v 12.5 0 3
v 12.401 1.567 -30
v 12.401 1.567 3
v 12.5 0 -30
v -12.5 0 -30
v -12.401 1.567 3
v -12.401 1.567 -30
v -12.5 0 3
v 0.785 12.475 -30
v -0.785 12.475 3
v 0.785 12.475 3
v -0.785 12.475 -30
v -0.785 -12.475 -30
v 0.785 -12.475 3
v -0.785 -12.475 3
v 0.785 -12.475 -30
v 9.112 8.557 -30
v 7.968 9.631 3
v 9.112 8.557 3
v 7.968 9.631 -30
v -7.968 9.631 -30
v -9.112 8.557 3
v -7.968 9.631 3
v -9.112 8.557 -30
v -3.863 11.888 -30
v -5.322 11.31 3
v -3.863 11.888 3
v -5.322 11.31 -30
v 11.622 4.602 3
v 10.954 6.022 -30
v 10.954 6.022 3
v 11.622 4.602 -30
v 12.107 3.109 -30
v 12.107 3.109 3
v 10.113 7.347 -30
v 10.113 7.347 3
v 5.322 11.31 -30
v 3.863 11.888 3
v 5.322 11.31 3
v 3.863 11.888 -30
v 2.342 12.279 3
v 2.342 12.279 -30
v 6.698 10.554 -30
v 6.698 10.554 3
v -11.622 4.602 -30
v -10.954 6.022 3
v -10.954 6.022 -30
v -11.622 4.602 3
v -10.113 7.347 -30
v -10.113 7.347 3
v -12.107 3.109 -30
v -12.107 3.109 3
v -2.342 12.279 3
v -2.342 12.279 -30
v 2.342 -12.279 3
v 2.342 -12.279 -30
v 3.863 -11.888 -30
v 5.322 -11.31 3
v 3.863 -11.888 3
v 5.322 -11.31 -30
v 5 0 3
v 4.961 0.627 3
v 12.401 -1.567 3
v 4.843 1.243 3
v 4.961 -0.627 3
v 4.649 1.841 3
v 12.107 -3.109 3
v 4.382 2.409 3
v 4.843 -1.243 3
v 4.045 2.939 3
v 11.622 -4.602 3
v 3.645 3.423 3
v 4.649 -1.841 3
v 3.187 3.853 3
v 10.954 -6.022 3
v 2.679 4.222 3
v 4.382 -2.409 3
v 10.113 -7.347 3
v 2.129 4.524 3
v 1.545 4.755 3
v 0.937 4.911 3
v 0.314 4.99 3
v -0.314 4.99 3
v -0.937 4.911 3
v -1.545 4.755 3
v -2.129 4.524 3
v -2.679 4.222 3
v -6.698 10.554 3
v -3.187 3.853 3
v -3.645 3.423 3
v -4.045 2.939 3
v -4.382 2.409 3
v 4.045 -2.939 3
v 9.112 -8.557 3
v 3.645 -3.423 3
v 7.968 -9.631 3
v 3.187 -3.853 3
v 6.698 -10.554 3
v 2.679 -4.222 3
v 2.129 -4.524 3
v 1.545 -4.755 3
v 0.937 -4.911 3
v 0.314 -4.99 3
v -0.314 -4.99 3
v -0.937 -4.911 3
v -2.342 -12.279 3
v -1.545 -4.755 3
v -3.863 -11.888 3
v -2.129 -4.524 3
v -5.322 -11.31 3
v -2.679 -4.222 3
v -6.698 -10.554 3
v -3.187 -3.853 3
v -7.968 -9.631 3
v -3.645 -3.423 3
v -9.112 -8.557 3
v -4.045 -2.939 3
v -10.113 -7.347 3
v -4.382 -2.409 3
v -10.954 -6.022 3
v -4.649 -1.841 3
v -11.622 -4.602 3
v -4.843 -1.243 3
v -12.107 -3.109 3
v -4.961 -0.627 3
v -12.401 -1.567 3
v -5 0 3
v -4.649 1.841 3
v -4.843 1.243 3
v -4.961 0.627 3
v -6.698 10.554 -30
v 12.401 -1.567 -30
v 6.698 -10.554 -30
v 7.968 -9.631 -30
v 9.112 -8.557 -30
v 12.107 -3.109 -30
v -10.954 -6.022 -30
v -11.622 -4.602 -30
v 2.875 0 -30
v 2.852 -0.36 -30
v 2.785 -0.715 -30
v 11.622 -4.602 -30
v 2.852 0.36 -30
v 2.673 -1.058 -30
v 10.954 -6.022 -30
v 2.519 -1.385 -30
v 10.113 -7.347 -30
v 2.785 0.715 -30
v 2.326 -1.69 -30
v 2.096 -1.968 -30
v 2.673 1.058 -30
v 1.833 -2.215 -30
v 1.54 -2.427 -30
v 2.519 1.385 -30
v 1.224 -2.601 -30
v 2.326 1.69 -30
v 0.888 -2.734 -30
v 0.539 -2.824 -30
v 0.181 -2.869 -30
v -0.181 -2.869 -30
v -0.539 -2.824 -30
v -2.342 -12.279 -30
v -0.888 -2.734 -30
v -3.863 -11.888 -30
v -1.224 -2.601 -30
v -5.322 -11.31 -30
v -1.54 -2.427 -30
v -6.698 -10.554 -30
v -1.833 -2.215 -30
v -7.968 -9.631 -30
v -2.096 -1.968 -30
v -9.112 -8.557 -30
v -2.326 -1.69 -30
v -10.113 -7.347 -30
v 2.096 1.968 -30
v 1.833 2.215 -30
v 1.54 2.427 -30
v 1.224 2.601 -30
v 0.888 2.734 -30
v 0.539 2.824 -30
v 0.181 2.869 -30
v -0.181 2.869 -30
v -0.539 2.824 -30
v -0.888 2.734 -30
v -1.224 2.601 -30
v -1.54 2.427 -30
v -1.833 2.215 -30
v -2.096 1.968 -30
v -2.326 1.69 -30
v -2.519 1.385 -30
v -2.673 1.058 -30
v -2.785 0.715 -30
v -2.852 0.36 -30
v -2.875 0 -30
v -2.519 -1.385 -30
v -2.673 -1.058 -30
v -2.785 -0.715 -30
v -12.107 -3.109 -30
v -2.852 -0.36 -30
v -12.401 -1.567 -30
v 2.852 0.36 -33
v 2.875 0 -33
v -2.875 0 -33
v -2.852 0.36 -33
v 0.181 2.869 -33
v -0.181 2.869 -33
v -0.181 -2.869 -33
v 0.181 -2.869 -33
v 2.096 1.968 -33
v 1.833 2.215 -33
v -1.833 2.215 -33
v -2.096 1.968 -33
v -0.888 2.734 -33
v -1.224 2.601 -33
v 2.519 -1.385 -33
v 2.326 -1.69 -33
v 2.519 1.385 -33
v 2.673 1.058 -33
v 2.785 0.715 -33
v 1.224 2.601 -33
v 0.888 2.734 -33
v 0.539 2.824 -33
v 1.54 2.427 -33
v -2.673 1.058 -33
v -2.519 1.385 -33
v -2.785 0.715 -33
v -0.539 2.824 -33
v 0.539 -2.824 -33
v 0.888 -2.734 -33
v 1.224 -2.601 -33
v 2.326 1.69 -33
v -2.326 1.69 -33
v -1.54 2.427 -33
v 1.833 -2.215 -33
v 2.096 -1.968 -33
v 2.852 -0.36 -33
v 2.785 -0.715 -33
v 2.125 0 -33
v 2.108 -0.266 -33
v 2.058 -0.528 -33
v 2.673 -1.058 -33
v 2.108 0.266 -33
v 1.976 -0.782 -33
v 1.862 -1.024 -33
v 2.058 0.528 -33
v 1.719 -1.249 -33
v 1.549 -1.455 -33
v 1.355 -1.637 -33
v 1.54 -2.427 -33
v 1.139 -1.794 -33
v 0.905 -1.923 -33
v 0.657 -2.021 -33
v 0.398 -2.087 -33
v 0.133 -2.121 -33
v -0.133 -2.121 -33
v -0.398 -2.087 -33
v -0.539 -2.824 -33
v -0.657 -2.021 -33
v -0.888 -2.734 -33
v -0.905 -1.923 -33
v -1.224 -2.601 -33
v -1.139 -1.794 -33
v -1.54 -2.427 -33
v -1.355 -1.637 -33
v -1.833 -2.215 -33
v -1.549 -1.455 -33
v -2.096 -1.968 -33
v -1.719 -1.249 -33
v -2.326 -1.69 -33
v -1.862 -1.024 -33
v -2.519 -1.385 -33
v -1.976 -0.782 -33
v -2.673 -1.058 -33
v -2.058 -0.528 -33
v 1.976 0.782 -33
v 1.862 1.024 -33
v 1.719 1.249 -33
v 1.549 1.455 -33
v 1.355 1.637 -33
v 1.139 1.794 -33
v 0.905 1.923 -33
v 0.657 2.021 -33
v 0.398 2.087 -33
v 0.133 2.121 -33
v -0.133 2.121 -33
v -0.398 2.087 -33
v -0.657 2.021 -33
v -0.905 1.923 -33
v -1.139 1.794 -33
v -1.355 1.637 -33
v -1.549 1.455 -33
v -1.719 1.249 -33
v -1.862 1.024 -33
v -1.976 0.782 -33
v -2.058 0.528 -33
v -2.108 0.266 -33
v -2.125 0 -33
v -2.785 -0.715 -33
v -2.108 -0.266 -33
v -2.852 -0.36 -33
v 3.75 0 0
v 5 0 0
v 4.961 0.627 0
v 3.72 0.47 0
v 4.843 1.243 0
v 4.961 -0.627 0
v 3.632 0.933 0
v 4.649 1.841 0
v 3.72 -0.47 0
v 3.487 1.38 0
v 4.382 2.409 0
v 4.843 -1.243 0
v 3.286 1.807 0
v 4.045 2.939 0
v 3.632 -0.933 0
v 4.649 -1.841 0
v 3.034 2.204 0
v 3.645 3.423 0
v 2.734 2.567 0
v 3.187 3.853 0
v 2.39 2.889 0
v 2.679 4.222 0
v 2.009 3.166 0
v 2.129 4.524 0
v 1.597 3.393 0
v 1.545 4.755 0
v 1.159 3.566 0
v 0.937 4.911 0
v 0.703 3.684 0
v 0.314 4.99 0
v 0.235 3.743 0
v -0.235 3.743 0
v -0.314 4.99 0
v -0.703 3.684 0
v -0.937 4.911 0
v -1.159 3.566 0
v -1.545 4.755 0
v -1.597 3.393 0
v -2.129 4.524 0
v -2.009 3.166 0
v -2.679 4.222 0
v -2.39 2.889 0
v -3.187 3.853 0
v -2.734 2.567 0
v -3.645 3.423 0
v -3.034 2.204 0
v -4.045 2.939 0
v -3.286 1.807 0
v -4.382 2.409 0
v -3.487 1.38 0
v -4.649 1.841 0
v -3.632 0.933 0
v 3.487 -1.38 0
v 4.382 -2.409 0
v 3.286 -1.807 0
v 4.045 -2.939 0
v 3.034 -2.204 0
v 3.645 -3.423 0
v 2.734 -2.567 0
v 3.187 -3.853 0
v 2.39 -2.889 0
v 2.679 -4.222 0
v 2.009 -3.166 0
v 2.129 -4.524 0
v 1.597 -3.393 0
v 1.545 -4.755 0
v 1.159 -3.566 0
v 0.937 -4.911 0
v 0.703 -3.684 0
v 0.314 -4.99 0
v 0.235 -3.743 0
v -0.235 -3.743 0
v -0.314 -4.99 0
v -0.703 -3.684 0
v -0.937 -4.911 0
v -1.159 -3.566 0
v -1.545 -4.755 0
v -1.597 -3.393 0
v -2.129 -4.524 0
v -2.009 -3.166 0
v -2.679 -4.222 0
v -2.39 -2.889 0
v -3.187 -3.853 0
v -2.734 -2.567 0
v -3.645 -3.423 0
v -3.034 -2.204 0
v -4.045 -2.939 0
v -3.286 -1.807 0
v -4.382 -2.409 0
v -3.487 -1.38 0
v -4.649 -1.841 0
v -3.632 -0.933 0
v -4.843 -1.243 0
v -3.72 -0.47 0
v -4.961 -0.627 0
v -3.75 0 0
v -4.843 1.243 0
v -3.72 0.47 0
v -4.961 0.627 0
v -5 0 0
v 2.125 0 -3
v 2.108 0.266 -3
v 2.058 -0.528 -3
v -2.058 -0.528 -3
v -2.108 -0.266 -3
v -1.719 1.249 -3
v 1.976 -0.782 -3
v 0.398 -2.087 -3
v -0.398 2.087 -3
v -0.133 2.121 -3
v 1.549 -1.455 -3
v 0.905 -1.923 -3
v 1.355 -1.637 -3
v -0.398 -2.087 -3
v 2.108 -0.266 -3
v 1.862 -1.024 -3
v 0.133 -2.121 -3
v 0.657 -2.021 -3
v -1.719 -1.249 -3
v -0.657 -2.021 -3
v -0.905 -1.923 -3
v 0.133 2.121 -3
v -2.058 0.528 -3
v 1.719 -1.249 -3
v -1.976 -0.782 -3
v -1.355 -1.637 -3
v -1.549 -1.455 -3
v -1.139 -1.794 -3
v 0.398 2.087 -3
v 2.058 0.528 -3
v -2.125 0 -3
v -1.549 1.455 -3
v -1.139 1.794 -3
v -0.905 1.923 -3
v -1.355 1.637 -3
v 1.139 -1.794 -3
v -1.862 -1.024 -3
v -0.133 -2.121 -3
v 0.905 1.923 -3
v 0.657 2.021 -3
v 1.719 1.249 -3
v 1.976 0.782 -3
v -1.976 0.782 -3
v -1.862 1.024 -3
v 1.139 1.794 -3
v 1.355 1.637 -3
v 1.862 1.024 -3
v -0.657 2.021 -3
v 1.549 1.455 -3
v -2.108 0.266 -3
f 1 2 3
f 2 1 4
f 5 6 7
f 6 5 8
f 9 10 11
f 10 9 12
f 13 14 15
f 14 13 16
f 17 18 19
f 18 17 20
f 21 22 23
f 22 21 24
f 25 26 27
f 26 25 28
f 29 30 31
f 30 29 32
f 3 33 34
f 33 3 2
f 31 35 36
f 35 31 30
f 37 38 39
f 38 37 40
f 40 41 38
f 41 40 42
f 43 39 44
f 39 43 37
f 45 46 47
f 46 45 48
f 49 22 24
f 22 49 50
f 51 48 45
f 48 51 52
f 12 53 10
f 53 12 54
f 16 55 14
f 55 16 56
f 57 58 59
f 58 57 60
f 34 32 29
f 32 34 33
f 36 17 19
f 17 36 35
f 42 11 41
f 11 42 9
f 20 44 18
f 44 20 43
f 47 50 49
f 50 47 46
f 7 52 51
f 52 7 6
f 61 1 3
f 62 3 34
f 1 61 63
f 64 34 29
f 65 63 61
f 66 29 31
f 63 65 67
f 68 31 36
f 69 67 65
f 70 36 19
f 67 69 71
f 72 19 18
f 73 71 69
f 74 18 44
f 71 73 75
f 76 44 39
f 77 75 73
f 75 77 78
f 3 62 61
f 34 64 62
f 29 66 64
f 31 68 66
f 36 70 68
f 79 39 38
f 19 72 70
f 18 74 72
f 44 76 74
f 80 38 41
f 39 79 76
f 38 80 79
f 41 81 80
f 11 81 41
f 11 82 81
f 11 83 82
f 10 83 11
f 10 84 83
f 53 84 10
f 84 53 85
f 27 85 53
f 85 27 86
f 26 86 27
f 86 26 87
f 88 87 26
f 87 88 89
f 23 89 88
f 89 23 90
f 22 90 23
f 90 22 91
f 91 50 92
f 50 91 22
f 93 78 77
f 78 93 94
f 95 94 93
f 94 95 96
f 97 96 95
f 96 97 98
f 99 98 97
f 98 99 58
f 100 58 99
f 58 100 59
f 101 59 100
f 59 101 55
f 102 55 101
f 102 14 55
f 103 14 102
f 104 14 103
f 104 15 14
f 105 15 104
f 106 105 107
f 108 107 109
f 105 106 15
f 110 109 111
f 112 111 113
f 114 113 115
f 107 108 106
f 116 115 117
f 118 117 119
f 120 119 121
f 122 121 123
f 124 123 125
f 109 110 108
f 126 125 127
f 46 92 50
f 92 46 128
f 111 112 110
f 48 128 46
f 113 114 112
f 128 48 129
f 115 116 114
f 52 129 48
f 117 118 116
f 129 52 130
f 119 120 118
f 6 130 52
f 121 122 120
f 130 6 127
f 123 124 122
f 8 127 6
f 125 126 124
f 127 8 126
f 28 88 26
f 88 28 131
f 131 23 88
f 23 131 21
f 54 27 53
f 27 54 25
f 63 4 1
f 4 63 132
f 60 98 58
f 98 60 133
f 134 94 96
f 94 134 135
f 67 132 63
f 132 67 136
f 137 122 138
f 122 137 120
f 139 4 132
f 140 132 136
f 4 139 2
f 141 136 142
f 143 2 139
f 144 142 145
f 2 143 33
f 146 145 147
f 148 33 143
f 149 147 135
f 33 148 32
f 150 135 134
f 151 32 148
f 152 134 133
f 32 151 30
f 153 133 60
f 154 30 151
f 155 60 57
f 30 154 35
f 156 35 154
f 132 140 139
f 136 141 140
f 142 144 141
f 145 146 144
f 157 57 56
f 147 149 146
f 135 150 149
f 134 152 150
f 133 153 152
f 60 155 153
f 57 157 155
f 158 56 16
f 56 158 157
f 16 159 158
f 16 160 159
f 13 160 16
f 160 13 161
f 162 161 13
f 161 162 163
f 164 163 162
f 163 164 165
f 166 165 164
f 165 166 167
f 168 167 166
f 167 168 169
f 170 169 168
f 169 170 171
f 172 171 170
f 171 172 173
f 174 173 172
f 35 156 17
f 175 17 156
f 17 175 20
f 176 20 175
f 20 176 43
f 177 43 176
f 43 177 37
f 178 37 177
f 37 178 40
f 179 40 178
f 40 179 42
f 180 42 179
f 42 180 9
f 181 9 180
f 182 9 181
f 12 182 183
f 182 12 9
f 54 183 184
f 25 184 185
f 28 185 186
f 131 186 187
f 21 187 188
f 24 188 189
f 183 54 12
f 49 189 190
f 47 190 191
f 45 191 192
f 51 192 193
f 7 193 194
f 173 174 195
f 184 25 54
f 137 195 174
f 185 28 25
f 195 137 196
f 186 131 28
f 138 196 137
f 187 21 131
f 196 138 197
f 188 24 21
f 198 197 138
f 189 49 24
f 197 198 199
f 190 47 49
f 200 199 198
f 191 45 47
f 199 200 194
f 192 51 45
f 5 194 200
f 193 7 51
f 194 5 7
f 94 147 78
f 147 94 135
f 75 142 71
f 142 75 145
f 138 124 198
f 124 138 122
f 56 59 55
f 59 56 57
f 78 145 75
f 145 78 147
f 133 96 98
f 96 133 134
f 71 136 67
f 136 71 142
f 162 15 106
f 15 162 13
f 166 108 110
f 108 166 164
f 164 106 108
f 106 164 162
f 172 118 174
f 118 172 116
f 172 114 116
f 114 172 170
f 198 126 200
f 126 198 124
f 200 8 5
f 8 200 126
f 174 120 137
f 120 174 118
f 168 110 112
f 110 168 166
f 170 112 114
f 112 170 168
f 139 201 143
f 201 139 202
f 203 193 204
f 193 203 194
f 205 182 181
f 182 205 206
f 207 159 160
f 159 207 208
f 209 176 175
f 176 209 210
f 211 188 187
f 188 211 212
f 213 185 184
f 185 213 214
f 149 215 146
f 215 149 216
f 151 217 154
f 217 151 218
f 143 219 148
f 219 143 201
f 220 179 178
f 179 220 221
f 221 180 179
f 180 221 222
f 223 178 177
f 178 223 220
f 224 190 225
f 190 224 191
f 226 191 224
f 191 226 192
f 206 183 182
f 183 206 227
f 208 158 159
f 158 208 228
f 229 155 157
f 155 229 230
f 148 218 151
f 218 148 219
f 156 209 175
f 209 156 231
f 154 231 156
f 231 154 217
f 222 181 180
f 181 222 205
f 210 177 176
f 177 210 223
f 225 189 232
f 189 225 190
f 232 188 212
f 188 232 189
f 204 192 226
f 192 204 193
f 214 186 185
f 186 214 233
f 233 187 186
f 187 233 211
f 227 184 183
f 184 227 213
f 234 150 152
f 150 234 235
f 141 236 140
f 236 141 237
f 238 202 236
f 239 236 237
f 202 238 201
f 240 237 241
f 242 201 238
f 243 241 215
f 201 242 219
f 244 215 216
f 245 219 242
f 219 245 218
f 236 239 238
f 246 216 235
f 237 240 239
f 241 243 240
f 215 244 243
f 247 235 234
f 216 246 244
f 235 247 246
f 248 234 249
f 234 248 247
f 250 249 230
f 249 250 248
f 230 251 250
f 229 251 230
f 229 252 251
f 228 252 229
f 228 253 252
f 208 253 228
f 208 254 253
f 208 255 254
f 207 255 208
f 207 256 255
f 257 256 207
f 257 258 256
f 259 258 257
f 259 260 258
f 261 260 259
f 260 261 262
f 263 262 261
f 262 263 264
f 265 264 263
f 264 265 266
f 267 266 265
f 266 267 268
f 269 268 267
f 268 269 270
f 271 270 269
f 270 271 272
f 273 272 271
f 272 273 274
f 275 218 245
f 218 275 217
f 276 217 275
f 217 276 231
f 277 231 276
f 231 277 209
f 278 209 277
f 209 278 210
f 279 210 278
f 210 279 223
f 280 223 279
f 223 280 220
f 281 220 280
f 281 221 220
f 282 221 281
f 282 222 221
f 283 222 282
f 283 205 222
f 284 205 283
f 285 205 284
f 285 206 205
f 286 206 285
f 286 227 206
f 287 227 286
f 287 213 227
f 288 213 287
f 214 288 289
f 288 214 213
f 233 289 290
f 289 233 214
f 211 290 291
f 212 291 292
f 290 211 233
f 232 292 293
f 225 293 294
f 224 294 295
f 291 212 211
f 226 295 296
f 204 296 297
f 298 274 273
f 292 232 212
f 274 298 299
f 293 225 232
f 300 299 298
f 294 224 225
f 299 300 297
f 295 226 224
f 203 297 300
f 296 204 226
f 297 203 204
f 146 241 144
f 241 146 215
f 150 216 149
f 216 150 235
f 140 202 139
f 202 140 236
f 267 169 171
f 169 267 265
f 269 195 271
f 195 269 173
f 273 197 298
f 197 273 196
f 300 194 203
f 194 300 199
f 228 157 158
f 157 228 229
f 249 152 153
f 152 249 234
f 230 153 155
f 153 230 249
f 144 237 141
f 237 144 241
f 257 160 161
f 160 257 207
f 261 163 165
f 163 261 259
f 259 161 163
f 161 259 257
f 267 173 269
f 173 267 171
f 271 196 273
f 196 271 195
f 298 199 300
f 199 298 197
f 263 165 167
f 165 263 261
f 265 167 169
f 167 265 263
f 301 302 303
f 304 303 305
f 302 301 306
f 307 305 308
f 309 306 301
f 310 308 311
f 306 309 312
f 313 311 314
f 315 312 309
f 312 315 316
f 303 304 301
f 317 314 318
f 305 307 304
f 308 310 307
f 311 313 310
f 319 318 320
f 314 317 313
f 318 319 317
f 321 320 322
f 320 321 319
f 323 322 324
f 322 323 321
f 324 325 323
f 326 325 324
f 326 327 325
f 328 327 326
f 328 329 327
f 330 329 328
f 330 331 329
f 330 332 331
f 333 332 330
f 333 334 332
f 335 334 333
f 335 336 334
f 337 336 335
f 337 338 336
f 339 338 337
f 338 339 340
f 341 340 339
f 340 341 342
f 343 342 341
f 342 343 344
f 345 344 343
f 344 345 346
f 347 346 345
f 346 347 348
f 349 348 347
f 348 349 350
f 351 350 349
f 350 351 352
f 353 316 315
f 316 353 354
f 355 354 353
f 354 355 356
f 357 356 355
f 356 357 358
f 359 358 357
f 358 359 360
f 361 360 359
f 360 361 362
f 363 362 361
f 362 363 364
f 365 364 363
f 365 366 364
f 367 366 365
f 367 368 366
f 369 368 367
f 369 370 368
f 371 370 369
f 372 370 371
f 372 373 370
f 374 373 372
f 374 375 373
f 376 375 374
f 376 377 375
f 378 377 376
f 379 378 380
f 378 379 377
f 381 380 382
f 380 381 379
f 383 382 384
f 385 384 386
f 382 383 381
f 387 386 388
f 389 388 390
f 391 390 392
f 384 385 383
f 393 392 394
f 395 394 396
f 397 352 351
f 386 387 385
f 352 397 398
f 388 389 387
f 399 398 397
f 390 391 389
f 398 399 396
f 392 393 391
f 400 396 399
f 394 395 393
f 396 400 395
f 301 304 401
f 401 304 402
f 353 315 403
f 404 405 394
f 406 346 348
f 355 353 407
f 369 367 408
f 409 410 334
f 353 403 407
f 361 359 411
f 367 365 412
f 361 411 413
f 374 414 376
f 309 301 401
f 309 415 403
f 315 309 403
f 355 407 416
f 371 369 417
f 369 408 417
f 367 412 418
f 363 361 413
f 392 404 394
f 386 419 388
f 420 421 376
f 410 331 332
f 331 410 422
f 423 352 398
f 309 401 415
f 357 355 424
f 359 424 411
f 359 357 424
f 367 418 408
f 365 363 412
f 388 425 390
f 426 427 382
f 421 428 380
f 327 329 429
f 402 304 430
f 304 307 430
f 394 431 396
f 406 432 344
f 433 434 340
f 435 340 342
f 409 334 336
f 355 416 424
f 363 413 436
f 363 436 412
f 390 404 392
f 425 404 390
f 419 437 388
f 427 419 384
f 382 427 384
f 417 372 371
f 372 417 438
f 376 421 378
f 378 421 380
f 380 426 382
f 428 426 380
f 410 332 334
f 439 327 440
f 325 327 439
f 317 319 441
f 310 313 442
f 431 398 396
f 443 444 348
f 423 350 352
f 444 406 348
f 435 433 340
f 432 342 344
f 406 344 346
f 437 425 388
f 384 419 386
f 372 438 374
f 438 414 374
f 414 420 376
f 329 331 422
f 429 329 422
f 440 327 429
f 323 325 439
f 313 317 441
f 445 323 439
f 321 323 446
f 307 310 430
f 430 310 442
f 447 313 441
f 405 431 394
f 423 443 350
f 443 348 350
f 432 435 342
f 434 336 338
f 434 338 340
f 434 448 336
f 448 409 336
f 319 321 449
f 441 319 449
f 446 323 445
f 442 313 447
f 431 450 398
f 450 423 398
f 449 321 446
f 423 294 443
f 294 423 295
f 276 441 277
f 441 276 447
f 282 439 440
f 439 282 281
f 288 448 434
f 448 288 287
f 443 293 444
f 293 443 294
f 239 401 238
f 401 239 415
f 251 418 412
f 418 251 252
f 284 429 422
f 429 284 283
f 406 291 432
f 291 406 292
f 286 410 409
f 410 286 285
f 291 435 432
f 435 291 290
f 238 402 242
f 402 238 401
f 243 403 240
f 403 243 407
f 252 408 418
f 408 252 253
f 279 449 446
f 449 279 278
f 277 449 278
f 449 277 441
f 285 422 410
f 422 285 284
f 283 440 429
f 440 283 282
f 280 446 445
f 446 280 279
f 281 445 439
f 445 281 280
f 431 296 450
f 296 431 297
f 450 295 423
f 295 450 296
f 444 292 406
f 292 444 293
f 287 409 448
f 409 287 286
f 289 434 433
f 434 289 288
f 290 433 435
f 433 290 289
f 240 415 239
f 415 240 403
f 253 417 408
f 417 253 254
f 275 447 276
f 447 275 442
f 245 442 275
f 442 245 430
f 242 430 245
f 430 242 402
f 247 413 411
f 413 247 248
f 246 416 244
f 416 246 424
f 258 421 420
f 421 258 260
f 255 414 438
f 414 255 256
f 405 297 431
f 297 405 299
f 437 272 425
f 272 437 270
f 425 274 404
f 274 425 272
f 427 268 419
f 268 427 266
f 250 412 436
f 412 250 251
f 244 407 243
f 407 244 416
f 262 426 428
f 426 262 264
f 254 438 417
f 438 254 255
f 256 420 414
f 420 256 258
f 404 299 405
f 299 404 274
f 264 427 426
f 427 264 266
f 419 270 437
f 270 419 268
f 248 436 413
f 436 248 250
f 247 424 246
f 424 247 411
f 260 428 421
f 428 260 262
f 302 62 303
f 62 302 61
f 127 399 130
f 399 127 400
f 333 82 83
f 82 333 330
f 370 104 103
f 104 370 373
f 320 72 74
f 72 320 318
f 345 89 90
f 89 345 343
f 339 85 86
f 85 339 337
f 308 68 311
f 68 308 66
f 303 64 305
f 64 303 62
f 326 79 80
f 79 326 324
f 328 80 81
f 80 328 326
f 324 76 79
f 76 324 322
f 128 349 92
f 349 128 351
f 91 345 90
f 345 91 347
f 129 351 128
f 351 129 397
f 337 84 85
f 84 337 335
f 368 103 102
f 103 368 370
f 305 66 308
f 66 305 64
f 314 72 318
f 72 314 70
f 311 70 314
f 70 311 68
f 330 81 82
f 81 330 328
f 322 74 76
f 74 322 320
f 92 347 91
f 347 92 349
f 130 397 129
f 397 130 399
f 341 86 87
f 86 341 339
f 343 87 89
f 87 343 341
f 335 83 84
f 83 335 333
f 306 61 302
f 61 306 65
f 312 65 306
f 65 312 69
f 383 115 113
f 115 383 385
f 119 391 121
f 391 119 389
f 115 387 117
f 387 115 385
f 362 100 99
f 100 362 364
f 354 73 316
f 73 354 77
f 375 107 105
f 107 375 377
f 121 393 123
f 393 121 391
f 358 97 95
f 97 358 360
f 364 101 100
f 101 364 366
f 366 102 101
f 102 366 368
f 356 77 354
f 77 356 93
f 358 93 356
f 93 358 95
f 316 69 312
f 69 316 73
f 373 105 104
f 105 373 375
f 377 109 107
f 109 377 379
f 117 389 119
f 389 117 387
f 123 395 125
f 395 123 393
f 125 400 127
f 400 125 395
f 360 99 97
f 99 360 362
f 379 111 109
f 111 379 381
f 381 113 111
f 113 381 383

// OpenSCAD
$fn = 50;

difference() {
	union() {
		translate(v = [0, 0, -30.0]) {
			cylinder(h = 33, r = 12.5);
		}
		#translate(v = [0, 0, -33.0]) {
			cylinder(h = 33, r = 2.875);
		}
	}
	union() {
		translate(v = [0, 0, 0]) {
			rotate(a = [0, 0, 0]) {
				difference() {
					union() {
						translate(v = [0, 0, -33.0]) {
							cylinder(h = 33, r = 2.0);
						}
						translate(v = [0, 0, -3]) {
							cylinder(h = 3, r1 = 2.125, r2 = 3.75);
						}
						translate(v = [0, 0, -33.0]) {
							cylinder(h = 33, r = 2.125);
						}
						translate(v = [0, 0, -33.0]) {
							cylinder(h = 33, r = 2.0);
						}
					}
					union();
				}
			}
		}
		#cylinder(h = 3, r = 5.0);
	}
}
